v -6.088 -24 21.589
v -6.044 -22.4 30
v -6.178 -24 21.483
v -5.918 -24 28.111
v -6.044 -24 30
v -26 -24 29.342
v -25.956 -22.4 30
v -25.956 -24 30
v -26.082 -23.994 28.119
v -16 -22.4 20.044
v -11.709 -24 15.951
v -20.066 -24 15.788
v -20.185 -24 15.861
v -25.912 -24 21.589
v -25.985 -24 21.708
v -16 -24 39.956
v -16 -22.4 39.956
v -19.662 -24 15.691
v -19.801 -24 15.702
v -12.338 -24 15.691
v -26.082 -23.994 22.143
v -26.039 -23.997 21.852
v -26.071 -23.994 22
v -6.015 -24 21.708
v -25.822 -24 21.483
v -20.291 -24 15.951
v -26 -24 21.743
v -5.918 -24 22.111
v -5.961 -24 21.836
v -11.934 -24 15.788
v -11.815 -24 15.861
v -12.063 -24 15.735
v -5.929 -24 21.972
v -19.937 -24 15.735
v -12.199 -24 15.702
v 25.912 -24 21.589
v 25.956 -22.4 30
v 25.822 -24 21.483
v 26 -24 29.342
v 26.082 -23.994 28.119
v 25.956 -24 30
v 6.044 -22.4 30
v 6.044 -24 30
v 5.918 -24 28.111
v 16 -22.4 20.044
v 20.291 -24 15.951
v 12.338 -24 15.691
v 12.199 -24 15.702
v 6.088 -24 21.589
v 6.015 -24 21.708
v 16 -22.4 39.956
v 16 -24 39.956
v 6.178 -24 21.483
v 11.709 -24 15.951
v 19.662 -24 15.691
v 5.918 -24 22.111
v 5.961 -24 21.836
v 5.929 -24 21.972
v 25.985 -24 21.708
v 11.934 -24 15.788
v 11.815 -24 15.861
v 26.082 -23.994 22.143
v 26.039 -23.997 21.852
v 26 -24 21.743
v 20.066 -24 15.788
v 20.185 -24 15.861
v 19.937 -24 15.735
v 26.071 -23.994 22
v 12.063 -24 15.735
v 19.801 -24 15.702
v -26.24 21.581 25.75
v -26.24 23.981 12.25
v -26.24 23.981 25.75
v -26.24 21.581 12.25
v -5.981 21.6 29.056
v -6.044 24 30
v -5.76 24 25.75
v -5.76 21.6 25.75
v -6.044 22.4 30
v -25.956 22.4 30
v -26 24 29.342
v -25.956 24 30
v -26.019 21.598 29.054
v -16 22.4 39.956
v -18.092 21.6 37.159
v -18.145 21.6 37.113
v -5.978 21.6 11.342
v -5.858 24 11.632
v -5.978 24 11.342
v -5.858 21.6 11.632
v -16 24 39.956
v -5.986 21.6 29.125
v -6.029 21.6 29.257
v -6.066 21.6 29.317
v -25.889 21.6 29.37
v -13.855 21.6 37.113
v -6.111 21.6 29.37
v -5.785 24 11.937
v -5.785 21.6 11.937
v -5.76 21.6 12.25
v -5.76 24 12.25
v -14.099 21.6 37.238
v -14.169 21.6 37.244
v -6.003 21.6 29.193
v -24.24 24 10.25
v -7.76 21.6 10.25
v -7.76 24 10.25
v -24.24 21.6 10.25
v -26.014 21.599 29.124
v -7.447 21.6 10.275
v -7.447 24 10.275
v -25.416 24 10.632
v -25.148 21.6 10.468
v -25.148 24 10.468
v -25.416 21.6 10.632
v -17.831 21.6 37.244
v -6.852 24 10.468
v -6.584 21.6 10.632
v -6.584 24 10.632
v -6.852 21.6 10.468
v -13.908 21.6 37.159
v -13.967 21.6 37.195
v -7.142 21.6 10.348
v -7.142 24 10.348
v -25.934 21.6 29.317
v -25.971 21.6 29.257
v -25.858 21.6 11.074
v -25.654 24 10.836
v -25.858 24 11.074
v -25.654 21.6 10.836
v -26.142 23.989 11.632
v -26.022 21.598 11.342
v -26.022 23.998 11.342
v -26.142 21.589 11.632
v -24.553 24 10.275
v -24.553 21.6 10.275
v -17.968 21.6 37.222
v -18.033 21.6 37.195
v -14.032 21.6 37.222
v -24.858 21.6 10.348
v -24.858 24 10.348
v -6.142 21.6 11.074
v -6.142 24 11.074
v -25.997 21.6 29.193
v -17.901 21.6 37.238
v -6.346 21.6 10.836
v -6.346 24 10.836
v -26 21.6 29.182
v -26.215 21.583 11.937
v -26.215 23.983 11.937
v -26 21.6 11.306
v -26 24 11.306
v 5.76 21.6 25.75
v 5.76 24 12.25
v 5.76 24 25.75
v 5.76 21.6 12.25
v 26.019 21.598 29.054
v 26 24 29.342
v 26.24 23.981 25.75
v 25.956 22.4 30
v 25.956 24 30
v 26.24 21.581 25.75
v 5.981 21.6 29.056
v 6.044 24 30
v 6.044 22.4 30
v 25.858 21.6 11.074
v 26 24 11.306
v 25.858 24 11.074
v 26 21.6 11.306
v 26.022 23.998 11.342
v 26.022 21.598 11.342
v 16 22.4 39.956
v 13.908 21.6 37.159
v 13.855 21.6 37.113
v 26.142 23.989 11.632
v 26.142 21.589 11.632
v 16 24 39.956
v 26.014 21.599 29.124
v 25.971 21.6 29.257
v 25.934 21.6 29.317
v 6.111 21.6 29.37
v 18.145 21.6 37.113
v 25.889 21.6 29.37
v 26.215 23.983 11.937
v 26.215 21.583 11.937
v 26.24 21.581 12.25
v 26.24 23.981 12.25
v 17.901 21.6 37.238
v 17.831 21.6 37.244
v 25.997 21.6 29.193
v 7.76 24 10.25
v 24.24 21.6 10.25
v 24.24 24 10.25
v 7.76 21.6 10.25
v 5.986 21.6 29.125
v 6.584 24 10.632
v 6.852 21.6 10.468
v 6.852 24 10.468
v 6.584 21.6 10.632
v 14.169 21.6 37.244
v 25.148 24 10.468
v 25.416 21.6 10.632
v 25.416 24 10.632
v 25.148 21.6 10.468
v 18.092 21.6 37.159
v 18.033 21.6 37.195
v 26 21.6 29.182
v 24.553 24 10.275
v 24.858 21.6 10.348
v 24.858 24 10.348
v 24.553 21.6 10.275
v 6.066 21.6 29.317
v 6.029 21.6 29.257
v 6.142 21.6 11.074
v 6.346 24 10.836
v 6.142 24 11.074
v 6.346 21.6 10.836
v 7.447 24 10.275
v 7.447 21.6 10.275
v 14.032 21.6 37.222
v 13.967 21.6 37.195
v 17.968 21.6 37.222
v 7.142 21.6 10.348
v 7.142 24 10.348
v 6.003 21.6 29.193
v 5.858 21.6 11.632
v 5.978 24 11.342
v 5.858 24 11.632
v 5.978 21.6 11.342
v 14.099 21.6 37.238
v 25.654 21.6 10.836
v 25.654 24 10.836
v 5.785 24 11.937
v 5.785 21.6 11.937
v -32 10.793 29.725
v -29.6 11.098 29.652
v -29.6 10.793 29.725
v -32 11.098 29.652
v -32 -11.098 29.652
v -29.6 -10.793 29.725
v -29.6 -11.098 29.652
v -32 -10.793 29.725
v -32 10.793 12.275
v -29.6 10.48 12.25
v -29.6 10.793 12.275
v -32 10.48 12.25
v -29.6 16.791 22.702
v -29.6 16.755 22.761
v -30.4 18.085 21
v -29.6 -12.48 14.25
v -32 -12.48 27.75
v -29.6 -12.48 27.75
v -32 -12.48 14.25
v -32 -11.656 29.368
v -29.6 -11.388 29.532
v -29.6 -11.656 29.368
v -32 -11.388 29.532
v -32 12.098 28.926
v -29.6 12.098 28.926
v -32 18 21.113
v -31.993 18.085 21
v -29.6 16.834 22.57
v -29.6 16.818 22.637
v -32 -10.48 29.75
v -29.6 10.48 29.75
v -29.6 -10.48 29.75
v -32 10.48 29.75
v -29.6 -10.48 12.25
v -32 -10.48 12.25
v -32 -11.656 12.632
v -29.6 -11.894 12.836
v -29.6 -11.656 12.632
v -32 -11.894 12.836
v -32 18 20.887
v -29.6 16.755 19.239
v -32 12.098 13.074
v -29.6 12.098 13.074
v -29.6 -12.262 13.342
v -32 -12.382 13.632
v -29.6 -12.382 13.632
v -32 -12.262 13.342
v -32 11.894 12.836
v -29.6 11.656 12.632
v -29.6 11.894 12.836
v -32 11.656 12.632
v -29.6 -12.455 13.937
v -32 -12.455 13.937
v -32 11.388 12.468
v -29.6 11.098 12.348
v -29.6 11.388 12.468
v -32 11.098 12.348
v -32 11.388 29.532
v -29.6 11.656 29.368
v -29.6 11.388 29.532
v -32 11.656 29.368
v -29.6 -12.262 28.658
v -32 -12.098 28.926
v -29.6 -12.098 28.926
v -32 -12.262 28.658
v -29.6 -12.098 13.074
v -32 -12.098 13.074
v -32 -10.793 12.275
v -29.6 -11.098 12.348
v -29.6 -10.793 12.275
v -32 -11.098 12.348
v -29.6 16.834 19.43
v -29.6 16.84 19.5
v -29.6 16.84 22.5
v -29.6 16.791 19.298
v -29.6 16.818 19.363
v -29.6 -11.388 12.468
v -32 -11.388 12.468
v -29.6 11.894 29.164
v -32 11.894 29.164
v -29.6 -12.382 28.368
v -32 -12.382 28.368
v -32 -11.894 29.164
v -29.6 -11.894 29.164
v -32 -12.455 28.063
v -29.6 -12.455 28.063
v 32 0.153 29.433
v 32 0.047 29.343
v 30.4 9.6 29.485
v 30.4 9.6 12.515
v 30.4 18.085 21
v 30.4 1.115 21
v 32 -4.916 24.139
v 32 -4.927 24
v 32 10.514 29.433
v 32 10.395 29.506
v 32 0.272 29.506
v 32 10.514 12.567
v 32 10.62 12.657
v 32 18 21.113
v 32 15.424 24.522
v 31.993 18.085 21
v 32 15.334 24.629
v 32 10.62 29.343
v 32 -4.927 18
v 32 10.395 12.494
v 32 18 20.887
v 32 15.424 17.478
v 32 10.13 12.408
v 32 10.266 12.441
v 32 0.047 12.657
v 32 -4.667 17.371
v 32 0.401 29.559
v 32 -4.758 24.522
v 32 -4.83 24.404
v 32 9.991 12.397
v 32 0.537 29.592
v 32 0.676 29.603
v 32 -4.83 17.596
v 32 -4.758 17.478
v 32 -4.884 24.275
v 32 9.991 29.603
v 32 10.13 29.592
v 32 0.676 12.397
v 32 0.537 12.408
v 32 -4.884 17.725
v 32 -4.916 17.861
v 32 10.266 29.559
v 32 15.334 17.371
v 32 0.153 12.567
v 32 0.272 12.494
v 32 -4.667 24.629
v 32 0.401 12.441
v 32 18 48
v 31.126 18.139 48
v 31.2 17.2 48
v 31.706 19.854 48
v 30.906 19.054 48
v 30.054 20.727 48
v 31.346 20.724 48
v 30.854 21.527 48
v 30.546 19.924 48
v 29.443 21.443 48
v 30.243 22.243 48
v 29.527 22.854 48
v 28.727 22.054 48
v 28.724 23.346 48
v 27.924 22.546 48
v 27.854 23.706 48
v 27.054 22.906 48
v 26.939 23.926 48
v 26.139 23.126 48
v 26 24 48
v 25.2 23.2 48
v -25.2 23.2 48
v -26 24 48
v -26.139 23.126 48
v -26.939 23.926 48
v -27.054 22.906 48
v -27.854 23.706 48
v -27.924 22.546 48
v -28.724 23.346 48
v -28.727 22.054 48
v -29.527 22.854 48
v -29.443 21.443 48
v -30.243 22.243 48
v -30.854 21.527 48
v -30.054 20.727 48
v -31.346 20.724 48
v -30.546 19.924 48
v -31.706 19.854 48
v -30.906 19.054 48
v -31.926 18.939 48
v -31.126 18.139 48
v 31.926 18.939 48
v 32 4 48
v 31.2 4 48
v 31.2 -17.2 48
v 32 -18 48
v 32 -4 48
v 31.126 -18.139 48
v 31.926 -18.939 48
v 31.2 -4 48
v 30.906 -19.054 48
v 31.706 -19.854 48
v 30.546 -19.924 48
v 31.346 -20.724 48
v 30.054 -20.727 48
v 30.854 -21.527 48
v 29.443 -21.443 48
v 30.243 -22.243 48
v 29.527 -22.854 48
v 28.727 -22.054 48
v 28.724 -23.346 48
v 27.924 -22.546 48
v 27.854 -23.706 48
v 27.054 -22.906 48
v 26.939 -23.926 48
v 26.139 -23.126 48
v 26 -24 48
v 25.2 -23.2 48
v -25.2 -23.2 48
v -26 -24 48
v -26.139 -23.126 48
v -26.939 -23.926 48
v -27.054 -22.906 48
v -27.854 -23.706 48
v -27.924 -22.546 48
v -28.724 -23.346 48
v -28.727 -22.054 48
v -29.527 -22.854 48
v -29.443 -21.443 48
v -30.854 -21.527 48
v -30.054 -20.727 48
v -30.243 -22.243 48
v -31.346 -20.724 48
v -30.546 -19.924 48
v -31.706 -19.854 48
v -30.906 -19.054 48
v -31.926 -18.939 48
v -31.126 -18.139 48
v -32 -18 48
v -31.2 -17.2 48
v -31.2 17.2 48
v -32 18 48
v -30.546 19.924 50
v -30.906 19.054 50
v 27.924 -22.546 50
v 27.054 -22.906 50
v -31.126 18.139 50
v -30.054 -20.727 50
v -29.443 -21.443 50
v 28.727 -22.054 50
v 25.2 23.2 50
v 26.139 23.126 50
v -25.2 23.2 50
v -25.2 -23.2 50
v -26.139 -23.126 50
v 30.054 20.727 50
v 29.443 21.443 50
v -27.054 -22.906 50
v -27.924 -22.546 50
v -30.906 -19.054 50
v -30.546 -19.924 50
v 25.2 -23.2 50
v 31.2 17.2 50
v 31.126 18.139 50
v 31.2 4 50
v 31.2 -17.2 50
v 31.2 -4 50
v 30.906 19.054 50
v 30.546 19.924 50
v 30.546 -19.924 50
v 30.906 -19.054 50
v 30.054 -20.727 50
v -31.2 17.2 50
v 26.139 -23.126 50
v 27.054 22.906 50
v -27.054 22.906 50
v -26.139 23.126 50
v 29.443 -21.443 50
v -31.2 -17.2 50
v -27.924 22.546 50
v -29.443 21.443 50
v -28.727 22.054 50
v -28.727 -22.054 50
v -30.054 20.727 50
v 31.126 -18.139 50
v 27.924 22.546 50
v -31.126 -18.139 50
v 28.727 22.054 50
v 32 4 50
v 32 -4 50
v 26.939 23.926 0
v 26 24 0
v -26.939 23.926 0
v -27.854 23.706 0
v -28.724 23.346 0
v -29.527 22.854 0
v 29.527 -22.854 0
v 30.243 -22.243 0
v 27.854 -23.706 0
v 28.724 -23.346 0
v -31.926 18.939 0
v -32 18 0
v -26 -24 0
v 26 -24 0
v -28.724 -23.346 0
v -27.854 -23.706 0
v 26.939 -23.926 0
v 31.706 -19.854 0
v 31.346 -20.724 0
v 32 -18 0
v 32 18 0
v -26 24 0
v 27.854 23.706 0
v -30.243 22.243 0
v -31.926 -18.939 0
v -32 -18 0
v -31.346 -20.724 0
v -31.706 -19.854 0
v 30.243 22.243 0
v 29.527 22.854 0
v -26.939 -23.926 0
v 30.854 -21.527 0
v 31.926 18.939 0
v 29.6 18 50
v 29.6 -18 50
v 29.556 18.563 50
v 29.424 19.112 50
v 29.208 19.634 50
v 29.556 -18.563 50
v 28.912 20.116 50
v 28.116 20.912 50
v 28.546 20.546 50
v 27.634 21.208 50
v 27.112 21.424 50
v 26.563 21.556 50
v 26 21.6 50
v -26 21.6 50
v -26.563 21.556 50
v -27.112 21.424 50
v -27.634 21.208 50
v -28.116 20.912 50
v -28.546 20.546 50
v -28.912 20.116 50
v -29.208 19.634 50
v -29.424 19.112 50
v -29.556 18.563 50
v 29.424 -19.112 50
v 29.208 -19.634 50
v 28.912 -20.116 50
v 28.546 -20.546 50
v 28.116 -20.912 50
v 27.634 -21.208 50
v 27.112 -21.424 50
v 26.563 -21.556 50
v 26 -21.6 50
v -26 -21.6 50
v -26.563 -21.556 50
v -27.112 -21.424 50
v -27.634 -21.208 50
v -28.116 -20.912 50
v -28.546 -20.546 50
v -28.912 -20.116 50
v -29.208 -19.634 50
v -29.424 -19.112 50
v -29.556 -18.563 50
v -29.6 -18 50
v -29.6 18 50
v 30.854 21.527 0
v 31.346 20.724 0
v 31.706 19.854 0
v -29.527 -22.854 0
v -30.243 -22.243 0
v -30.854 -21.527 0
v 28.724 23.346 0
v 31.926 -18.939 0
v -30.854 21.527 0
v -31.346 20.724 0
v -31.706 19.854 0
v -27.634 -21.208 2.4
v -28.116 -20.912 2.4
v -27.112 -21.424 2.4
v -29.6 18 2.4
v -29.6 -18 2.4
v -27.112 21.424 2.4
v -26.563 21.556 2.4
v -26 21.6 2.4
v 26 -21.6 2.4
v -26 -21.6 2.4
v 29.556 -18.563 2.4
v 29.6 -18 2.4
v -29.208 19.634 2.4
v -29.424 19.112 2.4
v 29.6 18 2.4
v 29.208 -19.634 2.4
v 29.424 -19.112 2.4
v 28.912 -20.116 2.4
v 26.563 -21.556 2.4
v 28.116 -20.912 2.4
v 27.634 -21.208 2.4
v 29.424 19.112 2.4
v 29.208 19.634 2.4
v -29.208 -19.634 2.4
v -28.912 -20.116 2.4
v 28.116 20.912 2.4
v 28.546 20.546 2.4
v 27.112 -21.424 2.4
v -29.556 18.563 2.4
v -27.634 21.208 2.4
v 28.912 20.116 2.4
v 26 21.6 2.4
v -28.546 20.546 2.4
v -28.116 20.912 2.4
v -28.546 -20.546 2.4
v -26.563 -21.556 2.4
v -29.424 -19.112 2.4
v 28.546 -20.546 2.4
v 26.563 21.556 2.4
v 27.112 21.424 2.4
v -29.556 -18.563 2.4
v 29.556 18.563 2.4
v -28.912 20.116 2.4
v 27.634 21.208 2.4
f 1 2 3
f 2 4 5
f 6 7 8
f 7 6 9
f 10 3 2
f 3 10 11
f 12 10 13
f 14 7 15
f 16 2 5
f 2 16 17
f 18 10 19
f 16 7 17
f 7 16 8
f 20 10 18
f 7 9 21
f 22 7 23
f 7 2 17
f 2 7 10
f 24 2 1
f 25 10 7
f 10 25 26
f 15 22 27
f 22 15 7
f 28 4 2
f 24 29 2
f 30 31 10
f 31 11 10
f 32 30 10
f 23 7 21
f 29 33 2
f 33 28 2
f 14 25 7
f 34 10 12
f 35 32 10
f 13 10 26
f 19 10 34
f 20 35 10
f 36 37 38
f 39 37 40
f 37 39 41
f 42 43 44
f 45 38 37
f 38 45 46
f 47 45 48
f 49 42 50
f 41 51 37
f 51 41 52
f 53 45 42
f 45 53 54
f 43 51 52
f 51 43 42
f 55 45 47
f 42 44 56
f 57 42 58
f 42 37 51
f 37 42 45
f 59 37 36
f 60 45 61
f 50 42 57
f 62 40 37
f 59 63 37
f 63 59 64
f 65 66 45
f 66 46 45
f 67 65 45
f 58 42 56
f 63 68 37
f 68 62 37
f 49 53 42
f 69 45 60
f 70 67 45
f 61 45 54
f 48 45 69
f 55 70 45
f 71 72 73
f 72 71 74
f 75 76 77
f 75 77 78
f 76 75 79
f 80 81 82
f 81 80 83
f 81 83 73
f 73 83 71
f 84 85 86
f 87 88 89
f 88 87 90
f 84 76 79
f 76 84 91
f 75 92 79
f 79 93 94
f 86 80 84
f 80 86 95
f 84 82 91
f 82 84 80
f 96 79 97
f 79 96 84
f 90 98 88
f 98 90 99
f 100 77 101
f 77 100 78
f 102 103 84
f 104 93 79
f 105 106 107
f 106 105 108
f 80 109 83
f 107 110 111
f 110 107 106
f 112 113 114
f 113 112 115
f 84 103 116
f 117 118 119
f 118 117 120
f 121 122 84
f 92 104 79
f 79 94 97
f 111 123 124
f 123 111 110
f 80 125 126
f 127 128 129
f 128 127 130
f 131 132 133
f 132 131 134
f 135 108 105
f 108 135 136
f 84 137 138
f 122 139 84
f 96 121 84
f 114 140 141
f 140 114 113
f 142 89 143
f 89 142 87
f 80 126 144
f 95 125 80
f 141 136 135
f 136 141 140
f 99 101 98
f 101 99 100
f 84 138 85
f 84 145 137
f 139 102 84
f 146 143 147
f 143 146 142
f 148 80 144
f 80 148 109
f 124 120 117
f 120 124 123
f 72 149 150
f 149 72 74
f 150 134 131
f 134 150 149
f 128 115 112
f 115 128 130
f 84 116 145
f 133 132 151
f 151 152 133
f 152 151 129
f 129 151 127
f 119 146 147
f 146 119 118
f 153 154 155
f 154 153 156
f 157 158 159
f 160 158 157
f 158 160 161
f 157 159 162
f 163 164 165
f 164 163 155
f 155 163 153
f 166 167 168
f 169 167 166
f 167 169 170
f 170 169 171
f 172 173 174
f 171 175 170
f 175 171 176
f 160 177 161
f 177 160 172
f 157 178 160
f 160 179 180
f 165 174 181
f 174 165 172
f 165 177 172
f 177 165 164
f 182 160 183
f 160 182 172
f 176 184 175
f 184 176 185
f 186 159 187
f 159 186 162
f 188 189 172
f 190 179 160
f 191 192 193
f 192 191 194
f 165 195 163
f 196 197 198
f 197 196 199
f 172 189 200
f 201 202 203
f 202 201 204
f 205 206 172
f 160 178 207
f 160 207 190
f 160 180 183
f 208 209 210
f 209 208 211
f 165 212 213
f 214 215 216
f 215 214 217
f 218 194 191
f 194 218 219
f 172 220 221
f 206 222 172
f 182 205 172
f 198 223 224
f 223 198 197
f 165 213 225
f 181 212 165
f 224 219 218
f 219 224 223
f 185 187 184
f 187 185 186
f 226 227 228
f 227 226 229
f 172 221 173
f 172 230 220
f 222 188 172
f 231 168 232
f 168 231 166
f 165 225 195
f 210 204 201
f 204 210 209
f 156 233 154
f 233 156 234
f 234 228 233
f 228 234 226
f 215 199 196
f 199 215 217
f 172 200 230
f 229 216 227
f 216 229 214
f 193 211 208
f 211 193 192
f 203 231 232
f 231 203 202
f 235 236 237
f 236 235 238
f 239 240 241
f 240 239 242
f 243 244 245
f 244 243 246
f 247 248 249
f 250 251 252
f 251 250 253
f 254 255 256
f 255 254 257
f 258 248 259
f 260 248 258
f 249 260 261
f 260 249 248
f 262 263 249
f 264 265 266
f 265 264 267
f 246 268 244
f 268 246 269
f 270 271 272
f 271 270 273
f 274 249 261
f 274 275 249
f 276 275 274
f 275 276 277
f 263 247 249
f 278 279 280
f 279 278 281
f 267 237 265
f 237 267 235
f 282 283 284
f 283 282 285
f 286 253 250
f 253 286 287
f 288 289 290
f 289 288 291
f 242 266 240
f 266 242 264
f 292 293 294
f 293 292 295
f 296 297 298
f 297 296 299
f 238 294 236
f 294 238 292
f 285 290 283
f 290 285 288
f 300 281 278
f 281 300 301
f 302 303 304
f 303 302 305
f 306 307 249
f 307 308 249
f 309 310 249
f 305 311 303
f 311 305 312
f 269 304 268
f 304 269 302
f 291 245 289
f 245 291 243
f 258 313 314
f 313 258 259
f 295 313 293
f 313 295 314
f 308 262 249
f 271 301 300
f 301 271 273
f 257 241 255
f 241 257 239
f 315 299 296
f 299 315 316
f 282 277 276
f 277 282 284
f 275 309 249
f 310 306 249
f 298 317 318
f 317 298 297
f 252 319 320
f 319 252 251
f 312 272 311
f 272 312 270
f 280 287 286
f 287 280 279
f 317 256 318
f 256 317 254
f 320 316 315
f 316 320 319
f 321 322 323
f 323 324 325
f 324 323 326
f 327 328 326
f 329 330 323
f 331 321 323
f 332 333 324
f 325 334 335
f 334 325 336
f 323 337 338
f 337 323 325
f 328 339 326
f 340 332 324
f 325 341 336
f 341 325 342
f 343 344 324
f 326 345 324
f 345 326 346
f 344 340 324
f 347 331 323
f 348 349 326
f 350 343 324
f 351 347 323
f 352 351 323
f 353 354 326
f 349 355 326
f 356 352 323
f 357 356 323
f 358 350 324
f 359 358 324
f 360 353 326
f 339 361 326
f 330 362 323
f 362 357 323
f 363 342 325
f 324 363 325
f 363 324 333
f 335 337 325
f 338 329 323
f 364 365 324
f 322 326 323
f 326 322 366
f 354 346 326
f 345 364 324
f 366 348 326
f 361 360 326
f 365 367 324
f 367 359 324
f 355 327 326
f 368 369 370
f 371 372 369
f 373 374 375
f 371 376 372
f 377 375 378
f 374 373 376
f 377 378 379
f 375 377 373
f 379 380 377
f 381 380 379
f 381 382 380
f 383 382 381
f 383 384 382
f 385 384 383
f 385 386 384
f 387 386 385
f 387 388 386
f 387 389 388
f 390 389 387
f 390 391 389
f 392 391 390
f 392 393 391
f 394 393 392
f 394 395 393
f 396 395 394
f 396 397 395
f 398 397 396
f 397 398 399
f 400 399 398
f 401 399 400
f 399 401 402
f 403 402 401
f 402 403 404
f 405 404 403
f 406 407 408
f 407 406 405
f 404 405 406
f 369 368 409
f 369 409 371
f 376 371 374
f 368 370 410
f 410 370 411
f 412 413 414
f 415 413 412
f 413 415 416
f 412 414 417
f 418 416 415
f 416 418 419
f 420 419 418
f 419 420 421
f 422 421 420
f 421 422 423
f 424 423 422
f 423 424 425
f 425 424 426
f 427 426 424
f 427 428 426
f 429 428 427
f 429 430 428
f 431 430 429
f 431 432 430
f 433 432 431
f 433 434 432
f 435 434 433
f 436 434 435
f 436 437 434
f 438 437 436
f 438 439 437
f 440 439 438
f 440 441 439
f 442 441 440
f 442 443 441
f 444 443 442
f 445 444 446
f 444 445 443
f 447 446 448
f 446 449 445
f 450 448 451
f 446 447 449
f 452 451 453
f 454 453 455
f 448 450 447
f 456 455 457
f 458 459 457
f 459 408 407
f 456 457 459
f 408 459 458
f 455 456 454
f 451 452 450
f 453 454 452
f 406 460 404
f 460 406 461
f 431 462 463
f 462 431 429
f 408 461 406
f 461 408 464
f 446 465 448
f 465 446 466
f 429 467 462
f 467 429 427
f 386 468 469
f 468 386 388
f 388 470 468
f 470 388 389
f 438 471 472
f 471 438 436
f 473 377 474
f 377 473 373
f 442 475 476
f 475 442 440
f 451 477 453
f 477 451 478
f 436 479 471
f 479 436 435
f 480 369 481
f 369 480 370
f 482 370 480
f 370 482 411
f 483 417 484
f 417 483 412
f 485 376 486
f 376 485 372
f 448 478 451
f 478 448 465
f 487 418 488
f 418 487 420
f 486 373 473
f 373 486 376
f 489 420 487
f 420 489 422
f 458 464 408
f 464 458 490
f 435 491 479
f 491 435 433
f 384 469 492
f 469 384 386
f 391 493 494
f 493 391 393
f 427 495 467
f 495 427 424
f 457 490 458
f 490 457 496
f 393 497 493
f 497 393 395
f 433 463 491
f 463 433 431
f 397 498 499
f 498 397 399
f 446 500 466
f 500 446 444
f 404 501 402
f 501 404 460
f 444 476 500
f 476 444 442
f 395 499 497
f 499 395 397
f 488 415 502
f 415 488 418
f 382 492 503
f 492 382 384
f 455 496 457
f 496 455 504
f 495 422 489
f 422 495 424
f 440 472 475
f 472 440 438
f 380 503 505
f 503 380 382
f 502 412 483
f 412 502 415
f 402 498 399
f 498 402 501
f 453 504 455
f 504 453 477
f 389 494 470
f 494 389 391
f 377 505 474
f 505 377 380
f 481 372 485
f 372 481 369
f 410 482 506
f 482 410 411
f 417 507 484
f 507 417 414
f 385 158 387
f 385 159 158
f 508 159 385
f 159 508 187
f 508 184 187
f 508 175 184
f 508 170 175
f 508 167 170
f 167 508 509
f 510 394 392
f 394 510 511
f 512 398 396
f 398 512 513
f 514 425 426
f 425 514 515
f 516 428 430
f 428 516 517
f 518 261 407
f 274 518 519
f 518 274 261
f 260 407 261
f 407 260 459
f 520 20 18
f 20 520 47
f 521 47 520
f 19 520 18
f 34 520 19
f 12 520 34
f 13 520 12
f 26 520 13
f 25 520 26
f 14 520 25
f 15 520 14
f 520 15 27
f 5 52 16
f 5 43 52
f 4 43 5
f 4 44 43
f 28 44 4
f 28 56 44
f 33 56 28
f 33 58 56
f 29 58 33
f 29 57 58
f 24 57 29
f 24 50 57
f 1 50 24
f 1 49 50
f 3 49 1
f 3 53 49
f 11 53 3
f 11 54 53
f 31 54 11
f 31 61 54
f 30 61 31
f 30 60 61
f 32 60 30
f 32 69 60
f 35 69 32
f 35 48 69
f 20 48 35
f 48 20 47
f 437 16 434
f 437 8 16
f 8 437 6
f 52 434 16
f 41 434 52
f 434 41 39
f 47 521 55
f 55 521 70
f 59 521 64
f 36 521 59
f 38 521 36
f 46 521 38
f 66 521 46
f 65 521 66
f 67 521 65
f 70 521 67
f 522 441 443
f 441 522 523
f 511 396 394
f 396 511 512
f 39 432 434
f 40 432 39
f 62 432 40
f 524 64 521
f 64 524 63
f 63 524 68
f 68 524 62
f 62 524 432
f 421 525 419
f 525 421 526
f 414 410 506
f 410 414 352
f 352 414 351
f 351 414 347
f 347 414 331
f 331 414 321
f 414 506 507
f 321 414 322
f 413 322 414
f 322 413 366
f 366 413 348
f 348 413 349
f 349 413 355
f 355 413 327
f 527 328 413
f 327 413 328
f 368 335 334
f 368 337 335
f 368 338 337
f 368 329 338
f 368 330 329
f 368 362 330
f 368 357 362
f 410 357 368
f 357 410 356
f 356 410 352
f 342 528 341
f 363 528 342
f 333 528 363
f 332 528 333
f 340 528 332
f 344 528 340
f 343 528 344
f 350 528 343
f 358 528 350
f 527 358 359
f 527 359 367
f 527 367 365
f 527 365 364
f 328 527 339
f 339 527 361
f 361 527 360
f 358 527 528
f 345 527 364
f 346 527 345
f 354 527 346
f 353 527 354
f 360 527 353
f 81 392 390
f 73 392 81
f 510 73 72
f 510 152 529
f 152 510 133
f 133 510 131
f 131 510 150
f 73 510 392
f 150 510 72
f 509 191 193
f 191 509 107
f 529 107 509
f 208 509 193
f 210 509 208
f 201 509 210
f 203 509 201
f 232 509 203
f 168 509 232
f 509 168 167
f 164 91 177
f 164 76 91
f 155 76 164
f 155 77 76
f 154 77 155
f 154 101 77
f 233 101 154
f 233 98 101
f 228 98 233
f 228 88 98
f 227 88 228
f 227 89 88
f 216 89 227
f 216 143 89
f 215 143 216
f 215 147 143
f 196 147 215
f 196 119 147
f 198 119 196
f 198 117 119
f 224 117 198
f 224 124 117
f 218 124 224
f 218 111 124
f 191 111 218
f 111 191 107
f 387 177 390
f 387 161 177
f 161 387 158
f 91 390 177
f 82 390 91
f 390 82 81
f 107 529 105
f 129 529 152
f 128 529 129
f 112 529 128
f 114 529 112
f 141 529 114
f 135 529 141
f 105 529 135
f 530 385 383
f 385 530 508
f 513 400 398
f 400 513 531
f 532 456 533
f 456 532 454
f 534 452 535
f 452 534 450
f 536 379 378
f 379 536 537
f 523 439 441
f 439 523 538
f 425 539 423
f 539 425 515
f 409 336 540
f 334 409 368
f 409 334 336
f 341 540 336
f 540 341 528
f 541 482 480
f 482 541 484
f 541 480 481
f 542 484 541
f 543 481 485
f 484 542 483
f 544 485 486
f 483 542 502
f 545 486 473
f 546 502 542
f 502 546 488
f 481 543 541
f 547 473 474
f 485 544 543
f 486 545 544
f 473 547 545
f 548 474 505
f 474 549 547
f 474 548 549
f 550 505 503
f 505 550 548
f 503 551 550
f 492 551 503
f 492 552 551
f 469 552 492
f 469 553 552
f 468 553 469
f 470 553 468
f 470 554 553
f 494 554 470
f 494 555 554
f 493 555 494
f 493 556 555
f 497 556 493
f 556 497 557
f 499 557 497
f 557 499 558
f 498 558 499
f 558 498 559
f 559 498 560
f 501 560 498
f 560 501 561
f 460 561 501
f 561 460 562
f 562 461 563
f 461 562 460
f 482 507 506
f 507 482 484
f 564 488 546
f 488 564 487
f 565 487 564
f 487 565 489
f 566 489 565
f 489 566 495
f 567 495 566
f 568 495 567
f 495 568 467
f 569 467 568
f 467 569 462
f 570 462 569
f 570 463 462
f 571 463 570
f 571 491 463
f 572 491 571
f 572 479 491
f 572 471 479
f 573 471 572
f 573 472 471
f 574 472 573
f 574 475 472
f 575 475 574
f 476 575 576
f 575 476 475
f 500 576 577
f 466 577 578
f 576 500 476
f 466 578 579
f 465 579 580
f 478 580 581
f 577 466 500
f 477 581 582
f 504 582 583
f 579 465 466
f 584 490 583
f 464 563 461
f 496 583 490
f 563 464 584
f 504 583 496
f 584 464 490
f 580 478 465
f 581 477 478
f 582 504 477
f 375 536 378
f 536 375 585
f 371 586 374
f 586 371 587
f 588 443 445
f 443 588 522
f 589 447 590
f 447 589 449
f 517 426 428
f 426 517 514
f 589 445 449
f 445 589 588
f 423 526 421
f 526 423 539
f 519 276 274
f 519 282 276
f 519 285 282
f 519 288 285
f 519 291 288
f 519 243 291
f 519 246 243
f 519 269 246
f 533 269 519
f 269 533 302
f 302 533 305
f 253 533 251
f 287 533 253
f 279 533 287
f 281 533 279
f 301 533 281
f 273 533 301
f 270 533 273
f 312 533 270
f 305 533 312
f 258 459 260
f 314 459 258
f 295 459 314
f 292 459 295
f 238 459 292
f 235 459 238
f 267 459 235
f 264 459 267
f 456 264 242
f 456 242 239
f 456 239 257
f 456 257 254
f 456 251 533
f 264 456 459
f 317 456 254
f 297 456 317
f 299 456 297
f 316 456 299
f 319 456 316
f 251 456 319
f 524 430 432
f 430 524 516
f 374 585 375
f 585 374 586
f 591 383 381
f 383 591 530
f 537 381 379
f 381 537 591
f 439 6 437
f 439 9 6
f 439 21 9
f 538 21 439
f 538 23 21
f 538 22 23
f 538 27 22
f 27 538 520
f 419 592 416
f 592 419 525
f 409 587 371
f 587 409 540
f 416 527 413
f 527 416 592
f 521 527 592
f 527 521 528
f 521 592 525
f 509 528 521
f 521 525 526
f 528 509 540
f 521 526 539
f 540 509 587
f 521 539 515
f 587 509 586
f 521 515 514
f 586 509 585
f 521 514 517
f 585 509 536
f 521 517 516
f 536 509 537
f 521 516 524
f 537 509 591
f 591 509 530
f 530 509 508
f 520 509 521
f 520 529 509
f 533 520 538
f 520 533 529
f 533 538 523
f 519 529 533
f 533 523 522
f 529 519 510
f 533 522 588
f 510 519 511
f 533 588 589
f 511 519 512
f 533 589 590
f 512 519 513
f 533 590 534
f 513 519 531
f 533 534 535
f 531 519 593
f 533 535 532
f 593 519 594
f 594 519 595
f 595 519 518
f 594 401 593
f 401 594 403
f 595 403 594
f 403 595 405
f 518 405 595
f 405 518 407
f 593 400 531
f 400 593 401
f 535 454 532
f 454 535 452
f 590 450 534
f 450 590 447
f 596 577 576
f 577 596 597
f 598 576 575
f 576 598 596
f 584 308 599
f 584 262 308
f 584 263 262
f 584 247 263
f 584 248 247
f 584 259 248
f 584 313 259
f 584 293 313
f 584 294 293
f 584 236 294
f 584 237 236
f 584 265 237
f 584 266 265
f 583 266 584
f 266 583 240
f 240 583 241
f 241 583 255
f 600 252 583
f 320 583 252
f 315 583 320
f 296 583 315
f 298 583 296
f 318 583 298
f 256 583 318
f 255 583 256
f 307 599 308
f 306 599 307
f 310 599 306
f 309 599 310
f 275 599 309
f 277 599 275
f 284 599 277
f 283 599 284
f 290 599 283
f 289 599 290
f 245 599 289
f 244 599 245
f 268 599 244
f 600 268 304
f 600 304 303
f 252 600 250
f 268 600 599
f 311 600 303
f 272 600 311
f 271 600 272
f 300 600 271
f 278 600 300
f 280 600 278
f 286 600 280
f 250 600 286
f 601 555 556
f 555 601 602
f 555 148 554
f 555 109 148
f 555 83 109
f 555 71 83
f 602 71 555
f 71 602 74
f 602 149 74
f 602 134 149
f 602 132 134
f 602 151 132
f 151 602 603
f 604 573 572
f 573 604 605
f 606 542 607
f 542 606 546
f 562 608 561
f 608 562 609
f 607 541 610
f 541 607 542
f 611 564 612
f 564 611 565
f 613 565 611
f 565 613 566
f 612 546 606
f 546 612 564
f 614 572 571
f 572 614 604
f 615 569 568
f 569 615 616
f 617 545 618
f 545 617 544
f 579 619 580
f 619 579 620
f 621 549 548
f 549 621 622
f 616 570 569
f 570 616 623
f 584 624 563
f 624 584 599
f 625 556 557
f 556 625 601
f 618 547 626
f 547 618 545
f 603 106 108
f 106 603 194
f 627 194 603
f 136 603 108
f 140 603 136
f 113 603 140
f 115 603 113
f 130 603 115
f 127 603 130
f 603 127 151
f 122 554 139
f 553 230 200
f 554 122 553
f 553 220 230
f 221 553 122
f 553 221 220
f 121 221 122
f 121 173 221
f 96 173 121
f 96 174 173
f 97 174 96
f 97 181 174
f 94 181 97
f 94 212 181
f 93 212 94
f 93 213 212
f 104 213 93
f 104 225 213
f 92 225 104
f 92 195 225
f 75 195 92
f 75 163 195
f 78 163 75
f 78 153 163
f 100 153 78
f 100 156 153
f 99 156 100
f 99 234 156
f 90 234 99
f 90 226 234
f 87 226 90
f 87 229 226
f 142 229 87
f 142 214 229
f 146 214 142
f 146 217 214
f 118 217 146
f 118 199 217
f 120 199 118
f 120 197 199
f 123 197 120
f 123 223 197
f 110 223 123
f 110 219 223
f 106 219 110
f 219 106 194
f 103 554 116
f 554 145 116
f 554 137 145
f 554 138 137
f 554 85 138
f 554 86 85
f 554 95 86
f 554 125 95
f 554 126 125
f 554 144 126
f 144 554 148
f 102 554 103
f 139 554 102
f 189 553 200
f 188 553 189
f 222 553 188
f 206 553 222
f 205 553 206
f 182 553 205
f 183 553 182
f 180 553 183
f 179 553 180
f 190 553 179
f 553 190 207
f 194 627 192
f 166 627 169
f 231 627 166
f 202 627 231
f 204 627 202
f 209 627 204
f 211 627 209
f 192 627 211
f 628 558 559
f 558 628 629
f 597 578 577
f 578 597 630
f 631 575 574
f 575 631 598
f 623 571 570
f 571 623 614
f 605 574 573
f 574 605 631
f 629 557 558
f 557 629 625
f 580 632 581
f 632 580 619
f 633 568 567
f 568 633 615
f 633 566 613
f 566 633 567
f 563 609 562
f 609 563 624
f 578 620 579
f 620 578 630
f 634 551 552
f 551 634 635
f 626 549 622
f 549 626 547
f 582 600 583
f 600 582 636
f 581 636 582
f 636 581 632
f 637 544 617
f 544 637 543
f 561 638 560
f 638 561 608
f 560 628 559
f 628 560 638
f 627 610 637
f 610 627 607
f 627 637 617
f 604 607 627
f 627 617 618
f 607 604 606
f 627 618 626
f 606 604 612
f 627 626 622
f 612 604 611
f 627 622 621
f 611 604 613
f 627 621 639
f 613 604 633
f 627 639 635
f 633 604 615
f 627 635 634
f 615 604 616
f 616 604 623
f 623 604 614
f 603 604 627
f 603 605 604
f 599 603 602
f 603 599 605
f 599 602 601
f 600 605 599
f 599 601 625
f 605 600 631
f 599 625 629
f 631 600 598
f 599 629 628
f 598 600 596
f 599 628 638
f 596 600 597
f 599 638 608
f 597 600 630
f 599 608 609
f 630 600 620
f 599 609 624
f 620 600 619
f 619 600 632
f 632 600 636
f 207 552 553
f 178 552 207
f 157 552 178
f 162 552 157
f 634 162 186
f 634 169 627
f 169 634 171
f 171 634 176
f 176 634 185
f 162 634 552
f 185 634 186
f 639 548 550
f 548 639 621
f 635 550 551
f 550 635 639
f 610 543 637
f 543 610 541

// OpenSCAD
// ====================================================================
// [PRINT 01] Alpine Gondola Cabin Body
// Sits 100% flat on its floor at Z = 0.
// Cathedral window arches bridge cleanly at 45° - ZERO SUPPORTS NEEDED!
// ====================================================================

use <gondola_cabin.scad>;

$fn = 50;

// Centered on bed at Z = 0
cabin_body();
